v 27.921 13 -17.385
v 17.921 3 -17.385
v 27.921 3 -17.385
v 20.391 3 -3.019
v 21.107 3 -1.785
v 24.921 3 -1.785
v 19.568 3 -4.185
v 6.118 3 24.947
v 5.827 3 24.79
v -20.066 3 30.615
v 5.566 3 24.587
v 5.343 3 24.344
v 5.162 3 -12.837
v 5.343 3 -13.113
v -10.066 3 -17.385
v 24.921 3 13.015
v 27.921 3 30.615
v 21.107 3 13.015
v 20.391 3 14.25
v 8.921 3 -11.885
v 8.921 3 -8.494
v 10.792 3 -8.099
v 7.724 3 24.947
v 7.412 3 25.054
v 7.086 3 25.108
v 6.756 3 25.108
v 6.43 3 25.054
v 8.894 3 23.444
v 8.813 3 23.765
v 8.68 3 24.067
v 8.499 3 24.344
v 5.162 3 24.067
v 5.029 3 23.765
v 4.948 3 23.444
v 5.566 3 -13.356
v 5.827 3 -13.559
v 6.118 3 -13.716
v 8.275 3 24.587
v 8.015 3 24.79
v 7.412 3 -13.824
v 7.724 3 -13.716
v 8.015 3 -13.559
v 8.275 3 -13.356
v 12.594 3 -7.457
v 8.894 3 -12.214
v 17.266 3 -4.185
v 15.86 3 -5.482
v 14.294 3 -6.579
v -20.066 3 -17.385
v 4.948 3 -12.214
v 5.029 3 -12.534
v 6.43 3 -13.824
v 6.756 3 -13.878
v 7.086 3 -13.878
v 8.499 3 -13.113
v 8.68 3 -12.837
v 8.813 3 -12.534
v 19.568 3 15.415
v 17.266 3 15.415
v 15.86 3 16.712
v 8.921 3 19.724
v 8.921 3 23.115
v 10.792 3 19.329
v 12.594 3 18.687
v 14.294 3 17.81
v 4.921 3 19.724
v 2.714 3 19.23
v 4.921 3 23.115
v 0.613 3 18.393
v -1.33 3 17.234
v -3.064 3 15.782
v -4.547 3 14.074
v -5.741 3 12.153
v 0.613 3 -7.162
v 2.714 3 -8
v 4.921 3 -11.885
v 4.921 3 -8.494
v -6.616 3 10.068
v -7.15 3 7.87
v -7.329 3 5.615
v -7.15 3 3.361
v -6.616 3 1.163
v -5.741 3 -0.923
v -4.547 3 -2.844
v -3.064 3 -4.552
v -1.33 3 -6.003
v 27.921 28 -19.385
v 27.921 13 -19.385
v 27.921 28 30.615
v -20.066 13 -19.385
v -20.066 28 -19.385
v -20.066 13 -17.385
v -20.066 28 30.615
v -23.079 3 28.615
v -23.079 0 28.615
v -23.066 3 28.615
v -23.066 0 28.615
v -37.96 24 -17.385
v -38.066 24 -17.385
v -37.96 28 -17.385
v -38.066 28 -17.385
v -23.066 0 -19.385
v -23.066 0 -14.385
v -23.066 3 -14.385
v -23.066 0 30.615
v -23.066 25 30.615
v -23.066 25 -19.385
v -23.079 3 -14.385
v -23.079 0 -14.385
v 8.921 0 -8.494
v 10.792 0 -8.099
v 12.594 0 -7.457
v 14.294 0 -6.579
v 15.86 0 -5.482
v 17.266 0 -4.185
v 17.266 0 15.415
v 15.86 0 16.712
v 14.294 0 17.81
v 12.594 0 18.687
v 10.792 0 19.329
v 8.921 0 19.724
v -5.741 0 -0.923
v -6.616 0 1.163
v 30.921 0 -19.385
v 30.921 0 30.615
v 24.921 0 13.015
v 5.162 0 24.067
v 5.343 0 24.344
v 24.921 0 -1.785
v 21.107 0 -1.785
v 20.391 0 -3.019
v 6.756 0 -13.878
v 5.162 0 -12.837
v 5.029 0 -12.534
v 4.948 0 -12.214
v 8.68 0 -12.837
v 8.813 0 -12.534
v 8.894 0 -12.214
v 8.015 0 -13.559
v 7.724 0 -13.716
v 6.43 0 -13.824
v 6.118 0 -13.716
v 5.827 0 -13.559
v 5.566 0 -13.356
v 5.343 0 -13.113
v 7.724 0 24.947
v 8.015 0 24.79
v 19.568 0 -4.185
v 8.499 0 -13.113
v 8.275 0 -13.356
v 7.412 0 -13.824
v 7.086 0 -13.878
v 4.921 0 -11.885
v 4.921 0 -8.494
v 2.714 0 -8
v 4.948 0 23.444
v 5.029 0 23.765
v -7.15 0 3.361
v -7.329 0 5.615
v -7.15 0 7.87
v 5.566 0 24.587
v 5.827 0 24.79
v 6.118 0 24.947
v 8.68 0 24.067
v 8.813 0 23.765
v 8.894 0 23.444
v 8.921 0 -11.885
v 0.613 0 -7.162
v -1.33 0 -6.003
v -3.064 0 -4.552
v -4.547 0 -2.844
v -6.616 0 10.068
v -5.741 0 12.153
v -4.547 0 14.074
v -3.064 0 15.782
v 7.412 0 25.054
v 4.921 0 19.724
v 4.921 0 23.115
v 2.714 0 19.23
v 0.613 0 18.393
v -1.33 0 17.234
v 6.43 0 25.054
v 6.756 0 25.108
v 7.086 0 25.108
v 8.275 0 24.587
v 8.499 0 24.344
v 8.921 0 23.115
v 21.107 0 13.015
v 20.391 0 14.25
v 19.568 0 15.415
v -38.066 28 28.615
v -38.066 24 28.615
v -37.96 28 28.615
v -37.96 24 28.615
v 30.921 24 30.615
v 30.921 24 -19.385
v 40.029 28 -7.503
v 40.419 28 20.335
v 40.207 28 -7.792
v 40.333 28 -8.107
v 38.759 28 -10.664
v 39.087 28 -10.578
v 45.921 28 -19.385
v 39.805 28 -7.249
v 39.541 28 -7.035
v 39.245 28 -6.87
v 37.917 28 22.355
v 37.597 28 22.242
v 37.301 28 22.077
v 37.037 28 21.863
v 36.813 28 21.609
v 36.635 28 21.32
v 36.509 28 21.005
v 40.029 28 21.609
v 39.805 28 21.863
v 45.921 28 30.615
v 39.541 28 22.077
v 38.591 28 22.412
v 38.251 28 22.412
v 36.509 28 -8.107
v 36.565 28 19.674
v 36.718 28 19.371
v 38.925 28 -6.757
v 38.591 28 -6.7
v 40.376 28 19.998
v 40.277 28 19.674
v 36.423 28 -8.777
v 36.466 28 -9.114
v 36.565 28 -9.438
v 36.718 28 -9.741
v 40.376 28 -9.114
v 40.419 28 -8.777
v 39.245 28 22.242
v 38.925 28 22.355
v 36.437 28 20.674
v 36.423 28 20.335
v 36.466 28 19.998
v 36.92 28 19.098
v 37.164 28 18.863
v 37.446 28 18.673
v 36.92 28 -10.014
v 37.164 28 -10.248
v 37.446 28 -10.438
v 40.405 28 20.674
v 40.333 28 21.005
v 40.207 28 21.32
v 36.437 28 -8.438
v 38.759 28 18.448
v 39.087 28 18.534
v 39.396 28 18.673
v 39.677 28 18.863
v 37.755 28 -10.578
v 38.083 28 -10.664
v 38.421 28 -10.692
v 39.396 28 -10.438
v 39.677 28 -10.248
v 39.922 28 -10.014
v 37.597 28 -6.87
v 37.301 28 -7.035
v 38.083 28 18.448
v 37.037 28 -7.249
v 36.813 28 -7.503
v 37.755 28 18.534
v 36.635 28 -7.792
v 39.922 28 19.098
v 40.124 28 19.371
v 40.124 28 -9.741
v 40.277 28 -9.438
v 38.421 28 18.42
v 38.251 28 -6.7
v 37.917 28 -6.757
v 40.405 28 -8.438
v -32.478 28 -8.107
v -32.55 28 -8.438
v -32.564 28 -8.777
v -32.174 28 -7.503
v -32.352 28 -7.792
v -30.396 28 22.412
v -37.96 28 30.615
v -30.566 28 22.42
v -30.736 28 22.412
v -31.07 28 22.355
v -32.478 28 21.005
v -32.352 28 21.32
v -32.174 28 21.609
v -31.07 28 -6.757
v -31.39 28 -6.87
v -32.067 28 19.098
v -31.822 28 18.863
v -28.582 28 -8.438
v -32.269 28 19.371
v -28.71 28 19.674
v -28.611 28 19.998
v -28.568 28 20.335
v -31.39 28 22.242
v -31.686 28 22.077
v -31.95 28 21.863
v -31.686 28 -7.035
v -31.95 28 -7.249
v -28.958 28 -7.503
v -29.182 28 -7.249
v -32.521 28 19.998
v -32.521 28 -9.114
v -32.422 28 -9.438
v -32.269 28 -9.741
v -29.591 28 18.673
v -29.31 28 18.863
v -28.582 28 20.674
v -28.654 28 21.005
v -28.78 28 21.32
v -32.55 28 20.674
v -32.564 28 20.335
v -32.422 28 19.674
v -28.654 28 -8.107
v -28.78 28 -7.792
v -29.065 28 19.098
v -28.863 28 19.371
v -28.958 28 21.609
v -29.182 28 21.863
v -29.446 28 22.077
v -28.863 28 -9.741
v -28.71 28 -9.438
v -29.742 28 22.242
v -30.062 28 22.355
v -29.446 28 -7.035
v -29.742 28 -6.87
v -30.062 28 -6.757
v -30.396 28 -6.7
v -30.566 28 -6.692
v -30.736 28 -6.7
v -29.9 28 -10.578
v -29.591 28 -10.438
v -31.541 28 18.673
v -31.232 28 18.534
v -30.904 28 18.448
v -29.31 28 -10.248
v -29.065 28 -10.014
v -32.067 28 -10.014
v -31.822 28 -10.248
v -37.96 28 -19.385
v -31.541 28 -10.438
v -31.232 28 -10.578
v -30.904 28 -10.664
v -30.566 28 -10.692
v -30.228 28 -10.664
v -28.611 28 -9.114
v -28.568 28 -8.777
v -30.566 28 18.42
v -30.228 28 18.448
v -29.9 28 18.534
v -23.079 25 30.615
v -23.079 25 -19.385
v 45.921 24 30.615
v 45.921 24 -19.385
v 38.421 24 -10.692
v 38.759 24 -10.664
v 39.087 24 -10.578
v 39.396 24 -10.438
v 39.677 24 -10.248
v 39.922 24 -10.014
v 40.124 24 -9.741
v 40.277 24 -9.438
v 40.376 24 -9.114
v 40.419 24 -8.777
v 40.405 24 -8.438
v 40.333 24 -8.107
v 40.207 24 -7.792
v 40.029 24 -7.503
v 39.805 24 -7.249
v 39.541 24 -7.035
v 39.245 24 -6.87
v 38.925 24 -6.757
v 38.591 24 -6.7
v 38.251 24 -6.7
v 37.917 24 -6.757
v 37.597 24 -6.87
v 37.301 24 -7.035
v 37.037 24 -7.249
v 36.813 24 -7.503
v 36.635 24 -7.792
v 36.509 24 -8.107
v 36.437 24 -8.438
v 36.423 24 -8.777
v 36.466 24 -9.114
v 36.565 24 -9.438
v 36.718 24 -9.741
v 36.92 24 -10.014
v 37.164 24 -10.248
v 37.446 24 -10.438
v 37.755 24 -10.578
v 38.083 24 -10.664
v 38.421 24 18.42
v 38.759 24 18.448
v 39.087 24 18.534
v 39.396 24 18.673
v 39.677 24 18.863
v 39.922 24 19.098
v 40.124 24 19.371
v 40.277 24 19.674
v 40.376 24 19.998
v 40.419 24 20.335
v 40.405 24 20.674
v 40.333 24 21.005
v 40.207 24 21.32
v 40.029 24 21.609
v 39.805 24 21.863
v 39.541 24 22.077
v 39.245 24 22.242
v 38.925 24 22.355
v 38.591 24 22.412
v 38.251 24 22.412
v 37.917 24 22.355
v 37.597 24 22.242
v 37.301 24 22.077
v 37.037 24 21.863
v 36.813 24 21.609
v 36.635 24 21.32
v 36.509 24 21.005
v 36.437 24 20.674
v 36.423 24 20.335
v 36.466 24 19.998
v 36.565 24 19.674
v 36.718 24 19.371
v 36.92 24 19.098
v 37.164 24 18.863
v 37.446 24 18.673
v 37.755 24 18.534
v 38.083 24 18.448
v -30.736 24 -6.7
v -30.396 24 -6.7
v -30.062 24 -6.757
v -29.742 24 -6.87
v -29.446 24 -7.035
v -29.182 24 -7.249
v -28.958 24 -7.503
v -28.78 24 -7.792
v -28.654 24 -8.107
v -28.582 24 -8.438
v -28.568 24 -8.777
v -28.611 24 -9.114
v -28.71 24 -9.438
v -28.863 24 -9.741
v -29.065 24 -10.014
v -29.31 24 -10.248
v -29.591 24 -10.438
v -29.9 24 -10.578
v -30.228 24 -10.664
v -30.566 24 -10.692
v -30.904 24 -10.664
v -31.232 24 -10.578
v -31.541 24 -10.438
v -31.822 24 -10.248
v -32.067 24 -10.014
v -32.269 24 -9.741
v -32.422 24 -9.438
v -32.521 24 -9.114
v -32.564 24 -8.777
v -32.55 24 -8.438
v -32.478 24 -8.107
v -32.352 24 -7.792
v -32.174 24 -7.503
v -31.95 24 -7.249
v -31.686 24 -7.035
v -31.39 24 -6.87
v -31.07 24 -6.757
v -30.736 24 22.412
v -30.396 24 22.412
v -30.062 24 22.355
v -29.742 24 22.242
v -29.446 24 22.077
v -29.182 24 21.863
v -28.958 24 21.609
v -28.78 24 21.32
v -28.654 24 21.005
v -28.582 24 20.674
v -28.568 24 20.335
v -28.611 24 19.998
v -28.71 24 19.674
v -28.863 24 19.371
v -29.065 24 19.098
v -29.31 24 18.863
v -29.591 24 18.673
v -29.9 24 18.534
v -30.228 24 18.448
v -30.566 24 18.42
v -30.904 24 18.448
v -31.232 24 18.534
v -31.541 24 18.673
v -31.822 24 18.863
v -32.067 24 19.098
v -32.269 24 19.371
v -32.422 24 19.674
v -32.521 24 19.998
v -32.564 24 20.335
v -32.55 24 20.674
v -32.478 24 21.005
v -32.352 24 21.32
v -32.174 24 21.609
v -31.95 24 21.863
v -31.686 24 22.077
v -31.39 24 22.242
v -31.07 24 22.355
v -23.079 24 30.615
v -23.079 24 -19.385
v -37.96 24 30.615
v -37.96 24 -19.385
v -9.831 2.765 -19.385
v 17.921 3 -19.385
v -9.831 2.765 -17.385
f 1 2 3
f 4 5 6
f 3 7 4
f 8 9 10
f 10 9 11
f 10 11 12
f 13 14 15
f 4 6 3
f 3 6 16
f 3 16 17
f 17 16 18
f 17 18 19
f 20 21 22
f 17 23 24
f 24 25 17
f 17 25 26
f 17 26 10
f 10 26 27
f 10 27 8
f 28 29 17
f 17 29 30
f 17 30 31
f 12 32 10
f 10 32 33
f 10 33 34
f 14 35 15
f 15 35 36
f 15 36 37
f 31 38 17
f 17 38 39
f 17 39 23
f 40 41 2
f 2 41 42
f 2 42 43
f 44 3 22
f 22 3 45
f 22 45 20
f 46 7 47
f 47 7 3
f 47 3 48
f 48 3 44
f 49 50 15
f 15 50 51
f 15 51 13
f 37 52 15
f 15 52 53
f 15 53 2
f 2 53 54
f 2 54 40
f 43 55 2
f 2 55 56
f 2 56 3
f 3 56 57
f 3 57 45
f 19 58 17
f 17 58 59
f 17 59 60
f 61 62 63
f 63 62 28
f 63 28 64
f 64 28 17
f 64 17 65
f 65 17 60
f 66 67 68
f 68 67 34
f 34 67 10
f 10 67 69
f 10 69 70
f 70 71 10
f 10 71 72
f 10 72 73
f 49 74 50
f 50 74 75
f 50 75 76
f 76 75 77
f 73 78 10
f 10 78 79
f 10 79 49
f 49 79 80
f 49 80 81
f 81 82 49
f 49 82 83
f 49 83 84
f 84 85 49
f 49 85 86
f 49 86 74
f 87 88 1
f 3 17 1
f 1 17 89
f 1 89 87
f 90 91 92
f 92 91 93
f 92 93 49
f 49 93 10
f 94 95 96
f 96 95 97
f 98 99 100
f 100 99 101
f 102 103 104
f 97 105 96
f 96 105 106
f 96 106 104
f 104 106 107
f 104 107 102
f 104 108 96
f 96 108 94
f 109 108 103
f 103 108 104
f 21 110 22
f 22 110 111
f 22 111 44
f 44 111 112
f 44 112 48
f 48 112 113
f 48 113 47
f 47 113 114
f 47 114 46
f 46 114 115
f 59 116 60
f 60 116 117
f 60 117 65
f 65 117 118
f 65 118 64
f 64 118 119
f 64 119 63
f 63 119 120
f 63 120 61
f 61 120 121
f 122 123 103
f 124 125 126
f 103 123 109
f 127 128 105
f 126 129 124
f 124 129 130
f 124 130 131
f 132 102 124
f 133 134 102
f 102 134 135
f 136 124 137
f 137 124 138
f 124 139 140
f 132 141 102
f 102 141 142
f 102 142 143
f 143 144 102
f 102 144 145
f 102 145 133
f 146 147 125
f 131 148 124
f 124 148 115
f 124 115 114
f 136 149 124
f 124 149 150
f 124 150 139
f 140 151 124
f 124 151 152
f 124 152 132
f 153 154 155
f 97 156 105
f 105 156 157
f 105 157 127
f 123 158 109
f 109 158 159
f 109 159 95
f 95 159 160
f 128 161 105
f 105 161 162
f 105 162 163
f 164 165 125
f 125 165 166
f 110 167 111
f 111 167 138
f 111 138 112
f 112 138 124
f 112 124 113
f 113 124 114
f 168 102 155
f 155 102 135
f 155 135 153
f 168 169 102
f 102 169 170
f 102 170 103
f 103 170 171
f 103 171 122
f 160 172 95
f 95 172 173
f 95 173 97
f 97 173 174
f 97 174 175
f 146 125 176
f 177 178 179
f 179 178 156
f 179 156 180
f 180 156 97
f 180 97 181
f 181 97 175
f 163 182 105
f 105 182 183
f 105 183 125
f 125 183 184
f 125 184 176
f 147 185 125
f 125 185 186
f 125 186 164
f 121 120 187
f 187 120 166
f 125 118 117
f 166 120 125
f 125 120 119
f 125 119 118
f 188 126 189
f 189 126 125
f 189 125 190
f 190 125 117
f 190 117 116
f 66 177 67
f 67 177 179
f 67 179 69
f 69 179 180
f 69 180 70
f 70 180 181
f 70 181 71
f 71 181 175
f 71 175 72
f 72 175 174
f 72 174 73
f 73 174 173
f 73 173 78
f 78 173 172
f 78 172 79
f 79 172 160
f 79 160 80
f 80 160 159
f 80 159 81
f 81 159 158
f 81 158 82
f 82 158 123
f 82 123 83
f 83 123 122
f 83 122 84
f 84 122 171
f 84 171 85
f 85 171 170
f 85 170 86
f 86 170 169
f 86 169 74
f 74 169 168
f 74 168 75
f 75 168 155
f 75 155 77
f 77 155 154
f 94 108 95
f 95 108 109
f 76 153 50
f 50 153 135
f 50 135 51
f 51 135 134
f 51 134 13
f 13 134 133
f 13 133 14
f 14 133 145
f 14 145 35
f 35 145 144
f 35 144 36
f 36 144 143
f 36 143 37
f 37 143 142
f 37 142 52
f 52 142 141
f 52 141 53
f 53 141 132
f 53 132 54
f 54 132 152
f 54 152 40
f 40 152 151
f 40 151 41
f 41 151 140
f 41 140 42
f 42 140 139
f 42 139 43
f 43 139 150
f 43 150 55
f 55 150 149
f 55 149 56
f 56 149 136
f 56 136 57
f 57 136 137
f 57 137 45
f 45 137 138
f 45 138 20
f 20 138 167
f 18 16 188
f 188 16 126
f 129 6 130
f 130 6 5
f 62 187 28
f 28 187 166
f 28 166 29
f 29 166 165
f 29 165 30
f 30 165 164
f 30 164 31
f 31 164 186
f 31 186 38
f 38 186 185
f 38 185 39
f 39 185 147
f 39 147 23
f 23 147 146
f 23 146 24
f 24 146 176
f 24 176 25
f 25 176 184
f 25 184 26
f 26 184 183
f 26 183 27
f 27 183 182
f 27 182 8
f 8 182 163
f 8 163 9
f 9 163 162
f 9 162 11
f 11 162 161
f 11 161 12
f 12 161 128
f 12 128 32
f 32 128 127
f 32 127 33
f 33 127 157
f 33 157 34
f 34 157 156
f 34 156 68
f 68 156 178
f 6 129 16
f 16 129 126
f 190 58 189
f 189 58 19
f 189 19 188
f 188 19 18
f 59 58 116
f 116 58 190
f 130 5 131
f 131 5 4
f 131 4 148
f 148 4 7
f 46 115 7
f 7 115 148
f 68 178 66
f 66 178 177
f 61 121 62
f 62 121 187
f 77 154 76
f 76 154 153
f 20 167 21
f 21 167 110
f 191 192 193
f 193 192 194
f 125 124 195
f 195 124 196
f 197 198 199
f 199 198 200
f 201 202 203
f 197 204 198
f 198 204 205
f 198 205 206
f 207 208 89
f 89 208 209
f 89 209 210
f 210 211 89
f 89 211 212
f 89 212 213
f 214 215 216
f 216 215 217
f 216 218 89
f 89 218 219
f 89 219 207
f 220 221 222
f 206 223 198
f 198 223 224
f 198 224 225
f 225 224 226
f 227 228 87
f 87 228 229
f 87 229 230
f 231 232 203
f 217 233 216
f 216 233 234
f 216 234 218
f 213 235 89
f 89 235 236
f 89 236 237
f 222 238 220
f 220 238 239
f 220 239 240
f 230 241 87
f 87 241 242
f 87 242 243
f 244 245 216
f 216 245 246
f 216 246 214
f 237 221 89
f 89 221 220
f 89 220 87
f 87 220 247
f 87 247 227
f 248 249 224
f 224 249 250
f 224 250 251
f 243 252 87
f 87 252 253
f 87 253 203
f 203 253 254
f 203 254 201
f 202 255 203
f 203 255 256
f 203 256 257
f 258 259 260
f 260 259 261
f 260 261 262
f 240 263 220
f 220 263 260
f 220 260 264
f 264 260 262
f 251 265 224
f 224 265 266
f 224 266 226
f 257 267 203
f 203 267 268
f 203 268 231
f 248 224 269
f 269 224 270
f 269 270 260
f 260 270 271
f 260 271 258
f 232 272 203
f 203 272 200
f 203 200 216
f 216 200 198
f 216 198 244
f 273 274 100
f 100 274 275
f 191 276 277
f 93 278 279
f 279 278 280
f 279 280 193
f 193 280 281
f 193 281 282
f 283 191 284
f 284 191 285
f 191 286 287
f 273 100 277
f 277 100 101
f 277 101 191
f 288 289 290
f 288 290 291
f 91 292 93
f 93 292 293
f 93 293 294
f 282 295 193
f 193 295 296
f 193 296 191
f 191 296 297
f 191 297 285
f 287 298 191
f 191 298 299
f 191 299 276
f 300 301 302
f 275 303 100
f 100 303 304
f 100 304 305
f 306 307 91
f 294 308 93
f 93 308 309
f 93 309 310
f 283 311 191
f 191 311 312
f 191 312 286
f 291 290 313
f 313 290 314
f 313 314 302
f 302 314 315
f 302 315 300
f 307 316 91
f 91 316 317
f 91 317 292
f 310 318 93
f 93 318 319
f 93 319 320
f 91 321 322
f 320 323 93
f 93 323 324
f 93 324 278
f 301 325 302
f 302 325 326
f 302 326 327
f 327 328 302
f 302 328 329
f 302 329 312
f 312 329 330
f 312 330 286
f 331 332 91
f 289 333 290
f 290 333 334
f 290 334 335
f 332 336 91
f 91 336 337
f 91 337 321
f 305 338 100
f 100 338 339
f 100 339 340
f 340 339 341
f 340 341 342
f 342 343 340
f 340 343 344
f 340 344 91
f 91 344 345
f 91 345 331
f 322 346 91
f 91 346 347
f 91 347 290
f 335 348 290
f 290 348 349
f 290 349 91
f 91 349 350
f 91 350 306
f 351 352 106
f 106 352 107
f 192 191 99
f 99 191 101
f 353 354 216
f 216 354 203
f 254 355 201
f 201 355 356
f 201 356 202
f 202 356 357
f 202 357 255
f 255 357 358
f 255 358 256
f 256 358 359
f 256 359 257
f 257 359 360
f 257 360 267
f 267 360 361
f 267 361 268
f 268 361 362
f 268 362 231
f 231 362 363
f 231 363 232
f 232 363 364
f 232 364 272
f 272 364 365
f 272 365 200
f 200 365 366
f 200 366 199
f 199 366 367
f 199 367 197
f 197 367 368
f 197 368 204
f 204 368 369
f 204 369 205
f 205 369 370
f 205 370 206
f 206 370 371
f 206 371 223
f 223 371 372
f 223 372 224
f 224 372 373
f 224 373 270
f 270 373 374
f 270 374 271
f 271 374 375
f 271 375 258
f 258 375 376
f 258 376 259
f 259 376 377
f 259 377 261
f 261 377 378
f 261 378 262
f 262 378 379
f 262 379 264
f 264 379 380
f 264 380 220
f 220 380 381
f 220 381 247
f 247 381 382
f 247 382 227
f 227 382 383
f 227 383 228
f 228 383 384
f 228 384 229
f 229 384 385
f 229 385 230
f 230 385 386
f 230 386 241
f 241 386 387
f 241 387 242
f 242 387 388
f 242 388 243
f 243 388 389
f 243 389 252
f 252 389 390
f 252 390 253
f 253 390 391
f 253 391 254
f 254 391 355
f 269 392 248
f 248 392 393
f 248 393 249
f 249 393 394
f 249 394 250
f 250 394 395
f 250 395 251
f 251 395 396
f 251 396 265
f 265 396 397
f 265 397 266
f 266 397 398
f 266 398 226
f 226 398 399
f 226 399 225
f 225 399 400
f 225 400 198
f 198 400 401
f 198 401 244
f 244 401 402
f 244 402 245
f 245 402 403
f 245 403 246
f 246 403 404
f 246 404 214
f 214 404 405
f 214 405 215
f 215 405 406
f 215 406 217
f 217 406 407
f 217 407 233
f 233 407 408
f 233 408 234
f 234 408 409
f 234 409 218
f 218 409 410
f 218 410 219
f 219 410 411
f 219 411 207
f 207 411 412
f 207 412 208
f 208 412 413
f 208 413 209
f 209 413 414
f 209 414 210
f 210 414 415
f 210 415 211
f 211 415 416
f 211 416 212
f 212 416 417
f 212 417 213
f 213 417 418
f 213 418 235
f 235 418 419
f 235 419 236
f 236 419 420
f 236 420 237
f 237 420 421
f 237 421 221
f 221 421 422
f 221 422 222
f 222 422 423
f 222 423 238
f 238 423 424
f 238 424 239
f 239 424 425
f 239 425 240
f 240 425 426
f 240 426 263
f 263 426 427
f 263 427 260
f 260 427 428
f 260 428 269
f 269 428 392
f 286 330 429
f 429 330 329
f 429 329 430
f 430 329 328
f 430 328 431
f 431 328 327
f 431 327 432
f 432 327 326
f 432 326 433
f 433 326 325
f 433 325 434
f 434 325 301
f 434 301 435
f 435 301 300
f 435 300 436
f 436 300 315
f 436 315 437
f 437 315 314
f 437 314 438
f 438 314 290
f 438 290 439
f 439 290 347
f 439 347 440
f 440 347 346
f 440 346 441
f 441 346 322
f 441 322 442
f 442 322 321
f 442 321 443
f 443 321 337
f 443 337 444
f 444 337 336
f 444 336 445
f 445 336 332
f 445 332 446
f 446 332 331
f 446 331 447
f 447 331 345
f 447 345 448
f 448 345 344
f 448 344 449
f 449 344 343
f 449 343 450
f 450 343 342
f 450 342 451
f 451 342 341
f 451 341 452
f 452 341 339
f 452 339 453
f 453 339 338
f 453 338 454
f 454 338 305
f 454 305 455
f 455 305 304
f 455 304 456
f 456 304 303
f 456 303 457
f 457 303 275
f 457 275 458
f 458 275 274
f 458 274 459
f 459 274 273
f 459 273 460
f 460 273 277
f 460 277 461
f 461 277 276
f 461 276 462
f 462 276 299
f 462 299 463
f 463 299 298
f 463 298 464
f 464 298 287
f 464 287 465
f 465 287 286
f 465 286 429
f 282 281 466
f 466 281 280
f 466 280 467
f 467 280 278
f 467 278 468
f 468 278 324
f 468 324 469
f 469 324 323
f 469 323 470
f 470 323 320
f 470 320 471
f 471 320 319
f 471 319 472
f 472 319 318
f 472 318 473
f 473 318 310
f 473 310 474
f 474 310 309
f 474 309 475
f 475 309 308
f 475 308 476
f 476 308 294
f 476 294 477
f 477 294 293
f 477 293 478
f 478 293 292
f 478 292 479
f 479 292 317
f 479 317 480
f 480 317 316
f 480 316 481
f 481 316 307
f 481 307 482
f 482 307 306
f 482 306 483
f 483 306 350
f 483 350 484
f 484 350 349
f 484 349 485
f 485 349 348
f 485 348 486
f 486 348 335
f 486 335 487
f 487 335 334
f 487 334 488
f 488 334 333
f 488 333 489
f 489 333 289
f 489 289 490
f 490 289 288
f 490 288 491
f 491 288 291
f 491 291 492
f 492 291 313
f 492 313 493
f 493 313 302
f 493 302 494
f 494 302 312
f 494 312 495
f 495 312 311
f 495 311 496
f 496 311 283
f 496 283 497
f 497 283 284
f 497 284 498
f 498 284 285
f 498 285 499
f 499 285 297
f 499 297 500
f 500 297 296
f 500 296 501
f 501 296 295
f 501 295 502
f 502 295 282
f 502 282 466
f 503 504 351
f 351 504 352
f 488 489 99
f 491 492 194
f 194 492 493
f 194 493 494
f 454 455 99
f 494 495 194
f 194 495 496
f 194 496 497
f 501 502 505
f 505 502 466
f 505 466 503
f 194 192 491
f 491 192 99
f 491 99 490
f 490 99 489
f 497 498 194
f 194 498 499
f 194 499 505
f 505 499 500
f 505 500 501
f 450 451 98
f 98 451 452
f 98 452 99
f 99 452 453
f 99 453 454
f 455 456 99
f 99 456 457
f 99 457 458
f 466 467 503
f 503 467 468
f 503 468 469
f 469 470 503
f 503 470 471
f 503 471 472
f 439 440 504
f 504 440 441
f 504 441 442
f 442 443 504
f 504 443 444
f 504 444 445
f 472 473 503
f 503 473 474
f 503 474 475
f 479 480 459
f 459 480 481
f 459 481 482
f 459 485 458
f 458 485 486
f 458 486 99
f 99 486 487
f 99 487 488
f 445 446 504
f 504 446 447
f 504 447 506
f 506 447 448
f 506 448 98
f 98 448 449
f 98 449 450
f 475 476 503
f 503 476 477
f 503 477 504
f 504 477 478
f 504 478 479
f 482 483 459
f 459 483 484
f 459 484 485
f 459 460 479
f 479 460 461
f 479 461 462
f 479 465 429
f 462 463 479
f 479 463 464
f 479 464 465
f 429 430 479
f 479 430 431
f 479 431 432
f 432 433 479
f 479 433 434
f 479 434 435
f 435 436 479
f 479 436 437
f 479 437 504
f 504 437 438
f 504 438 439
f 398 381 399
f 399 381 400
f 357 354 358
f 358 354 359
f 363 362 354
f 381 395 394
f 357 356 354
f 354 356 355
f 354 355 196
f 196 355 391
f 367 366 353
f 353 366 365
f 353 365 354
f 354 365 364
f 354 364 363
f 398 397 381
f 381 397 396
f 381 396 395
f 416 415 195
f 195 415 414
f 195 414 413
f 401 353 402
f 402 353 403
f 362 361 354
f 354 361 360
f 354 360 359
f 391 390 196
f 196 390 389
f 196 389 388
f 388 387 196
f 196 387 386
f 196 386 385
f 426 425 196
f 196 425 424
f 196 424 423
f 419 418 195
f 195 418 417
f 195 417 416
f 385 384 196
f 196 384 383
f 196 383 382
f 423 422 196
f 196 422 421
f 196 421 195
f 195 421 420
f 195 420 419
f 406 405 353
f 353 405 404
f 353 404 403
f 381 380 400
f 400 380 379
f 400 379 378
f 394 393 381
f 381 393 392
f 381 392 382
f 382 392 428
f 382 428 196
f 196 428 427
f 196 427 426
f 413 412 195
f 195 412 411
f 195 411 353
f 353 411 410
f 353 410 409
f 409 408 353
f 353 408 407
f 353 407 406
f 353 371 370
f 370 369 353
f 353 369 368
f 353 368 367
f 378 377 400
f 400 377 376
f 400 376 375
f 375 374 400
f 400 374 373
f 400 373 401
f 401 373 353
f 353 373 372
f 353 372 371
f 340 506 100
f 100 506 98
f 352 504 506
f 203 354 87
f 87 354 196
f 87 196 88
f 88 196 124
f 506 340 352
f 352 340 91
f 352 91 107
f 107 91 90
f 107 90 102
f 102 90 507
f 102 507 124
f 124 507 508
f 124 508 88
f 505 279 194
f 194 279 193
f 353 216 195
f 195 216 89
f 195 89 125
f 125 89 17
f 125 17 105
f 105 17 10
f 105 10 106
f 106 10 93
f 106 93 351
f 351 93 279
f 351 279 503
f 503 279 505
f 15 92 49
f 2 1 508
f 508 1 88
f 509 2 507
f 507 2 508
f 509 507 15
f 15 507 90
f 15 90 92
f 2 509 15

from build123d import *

# Parameters (mm, degrees)
SKETCH1_W            = 50
SKETCH1_H            = 40
BOSS_EXTRUDE1_DEPTH  = 3
SKETCH6_R            = 2
CUT_EXTRUDE9_DEPTH   = 5
SKETCH16_W           = 14.8
SKETCH16_H           = 3
CUT_EXTRUDE10_DEPTH  = 0.5
SKETCH21_R           = 14.25
CUT_EXTRUDE15_DEPTH  = 4
CUT_EXTRUDE16_START  = -4
CUT_EXTRUDE16_DEPTH  = 4
SKETCH33_W           = 4
SKETCH33_H           = 35
CUT_EXTRUDE23_DEPTH  = 5
SKETCH34_W           = 49.986920535
SKETCH34_H           = 3
BOSS_EXTRUDE2_DEPTH  = 3
SKETCH35_W           = 50
SKETCH35_H           = 3
BOSS_EXTRUDE3_DEPTH  = 3
SKETCH36_W           = 46
SKETCH36_H           = 3
BOSS_EXTRUDE4_DEPTH  = 4
SKETCH38_W           = 3
SKETCH38_H           = 46
BOSS_EXTRUDE5_DEPTH  = 25
SKETCH39_W           = 45.535565308
SKETCH39_H           = 3
BOSS_EXTRUDE6_DEPTH  = 15
SKETCH40_W           = 46
SKETCH40_H           = 3
BOSS_EXTRUDE7_DEPTH  = 15
SKETCH41_W           = 0.464434692
SKETCH41_H           = 3
BOSS_EXTRUDE8_DEPTH  = 15
SKETCH42_R           = 2
CUT_EXTRUDE24_DEPTH  = 15
SKETCH43_R           = 2
CUT_EXTRUDE25_DEPTH  = 15
BOSS_EXTRUDE10_START = 1
SKETCH44_W           = 14.986920535
SKETCH44_H           = 46
SKETCH44_R           = 2
BOSS_EXTRUDE10_DEPTH = 1
BOSS_EXTRUDE11_START = 1
SKETCH46_W           = 15
SKETCH46_H           = 46
SKETCH46_R           = 2
BOSS_EXTRUDE11_DEPTH = 1
BOSS_EXTRUDE12_DEPTH = 2
BOSS_EXTRUDE13_DEPTH = 2
SKETCH49_W           = 47.986920535
SKETCH49_H           = 2
BOSS_EXTRUDE14_DEPTH = 10
CUT_EXTRUDE26_DEPTH  = 10


with BuildPart() as part:
    # Sketch1 → Boss-Extrude1 (new body)
    with BuildSketch(Plane(origin=(0, 0, 0), x_dir=(1, 0, 0), z_dir=(0, 1, 0))):
        with Locations((1.920937393, -5.615172506)):
            Rectangle(SKETCH1_W, SKETCH1_H)
    extrude(amount=BOSS_EXTRUDE1_DEPTH)

    # Sketch6 → Cut-Extrude9 (cut)
    with BuildSketch(Plane.XZ):
        with Locations(Location((6.920937393, 23.115172506, 0), (0, 0, 270))):
            Circle(SKETCH6_R)
        with Locations(Location((6.920937393, -11.884827494, 0), (0, 0, 270))):
            Circle(SKETCH6_R)
        with BuildLine():
            Line((24.420937393, 13.015172506), (18.923020545, 13.015172506))
            ThreePointArc((18.923020545, 13.015172506), (-7.179062607, 5.615172506), (18.923020545, -1.784827494))
            Line((18.923020545, -1.784827494), (24.420937393, -1.784827494))
            Line((24.420937393, -1.784827494), (24.420937393, 5.615172506))
            Line((24.420937393, 5.615172506), (24.420937393, 13.015172506))
        make_face()
    extrude(amount=-CUT_EXTRUDE9_DEPTH, mode=Mode.SUBTRACT)

    # Sketch16 → Cut-Extrude10 (cut)
    with BuildSketch(Plane.ZY.offset(-24.420937393)):
        with Locations((5.615172506, 1.5)):
            Rectangle(SKETCH16_W, SKETCH16_H)
    extrude(amount=-CUT_EXTRUDE10_DEPTH, mode=Mode.SUBTRACT)

    # Sketch21 → Cut-Extrude15 (cut)
    with BuildSketch(Plane(origin=(0, 0, 0), x_dir=(-1, 0, 0), z_dir=(0, -1, 0))):
        with Locations((-6.920937393, -5.615172506)):
            Circle(SKETCH21_R)
    extrude(amount=-CUT_EXTRUDE15_DEPTH, mode=Mode.SUBTRACT)

    # Sketch22 → Cut-Extrude16 (cut)
    with BuildSketch(Plane(origin=(0, 3, 0), x_dir=(1, 0, 0), z_dir=(0, 1, 0)).offset(CUT_EXTRUDE16_START)):
        with BuildLine():
            ThreePointArc((21.106680727, 1.784827494), (20.39103932, 3.019158274), (19.568281538, 4.184827494))
            Line((19.568281538, 4.184827494), (17.266105347, 4.184827494))
            ThreePointArc((17.266105347, 4.184827494), (18.246250908, 3.03351374), (19.09888878, 1.784827494))
            Line((19.09888878, 1.784827494), (21.106680727, 1.784827494))
        make_face()
        with BuildLine():
            Line((17.266105347, -15.415172506), (19.568281538, -15.415172506))
            ThreePointArc((19.568281538, -15.415172506), (20.39103932, -14.249503286), (21.106680727, -13.015172506))
            Line((21.106680727, -13.015172506), (19.09888878, -13.015172506))
            ThreePointArc((19.09888878, -13.015172506), (18.246250908, -14.263858752), (17.266105347, -15.415172506))
        make_face()
    extrude(amount=CUT_EXTRUDE16_DEPTH, mode=Mode.SUBTRACT)

    # Sketch33 → Cut-Extrude23 (cut)
    with BuildSketch(Plane(origin=(0, 3, 0), x_dir=(1, 0, 0), z_dir=(0, 1, 0))):
        with Locations((6.920937393, -5.615172506)):
            Rectangle(SKETCH33_W, SKETCH33_H)
    extrude(amount=-CUT_EXTRUDE23_DEPTH, mode=Mode.SUBTRACT)

    # Sketch34 → Boss-Extrude2 (add)
    with BuildSketch(Plane(origin=(0, 0, -14.384827494), x_dir=(-1, 0, 0), z_dir=(0, 0, -1))):
        with Locations((-1.927477126, 1.5)):
            Rectangle(SKETCH34_W, SKETCH34_H)
    extrude(amount=BOSS_EXTRUDE2_DEPTH)

    # Sketch35 → Boss-Extrude3 (add)
    with BuildSketch(Plane.XY.offset(25.615172506)):
        with Locations((1.920937393, 1.5)):
            Rectangle(SKETCH35_W, SKETCH35_H)
    extrude(amount=BOSS_EXTRUDE3_DEPTH)

    # Sketch36 → Boss-Extrude4 (add)
    with BuildSketch(Plane(origin=(26.920937393, 0, 0), x_dir=(0, 0, -1), z_dir=(1, 0, 0))):
        with Locations((-5.615172506, 1.5)):
            Rectangle(SKETCH36_W, SKETCH36_H)
    extrude(amount=BOSS_EXTRUDE4_DEPTH)

    # Sketch38 → Boss-Extrude5 (add)
    with BuildSketch(Plane(origin=(0, 3, 0), x_dir=(1, 0, 0), z_dir=(0, 1, 0))):
        with Locations((29.420937393, -5.615172506)):
            Rectangle(SKETCH38_W, SKETCH38_H)
        with Locations((-21.565983142, -5.615172506)):
            Rectangle(SKETCH38_W, SKETCH38_H)
    extrude(amount=BOSS_EXTRUDE5_DEPTH)

    # Sketch39 → Boss-Extrude6 (add)
    with BuildSketch(Plane.ZY.offset(23.065983142)):
        with Locations((5.38295516, 26.5)):
            Rectangle(SKETCH39_W, SKETCH39_H)
    extrude(amount=BOSS_EXTRUDE6_DEPTH)

    # Sketch40 → Boss-Extrude7 (add)
    with BuildSketch(Plane(origin=(30.920937393, 0, 0), x_dir=(0, 0, -1), z_dir=(1, 0, 0))):
        with Locations((-5.615172506, 26.5)):
            Rectangle(SKETCH40_W, SKETCH40_H)
    extrude(amount=BOSS_EXTRUDE7_DEPTH)

    # Sketch41 → Boss-Extrude8 (add)
    with BuildSketch(Plane.ZY.offset(23.065983142)):
        with Locations((28.38295516, 26.5)):
            Rectangle(SKETCH41_W, SKETCH41_H)
    extrude(amount=BOSS_EXTRUDE8_DEPTH)

    # Sketch42 → Cut-Extrude24 (cut)
    with BuildSketch(Plane.XZ.offset(-25)):
        with Locations(Location((38.420937393, 20.419520332, 0), (0, 0, 270))):
            Circle(SKETCH42_R)
        with Locations(Location((38.420937393, -8.692413747, 0), (0, 0, 270))):
            Circle(SKETCH42_R)
    extrude(amount=-CUT_EXTRUDE24_DEPTH, mode=Mode.SUBTRACT)

    # Sketch43 → Cut-Extrude25 (cut)
    with BuildSketch(Plane.XZ.offset(-25)):
        with Locations(Location((-30.565983142, 20.419520332, 0), (0, 0, 270))):
            Circle(SKETCH43_R)
        with Locations(Location((-30.565983142, -8.692413747, 0), (0, 0, 270))):
            Circle(SKETCH43_R)
    extrude(amount=-CUT_EXTRUDE25_DEPTH, mode=Mode.SUBTRACT)

    # Sketch44 → Boss-Extrude10 (add)
    with BuildSketch(Plane.XZ.offset(-25).offset(BOSS_EXTRUDE10_START)):
        with Locations((-30.572522875, 5.615172506)):
            Rectangle(SKETCH44_W, SKETCH44_H)
        with Locations(Location((-30.565983142, -8.692413747, 0), (0, 0, 270))):
            Circle(SKETCH44_R, mode=Mode.SUBTRACT)
        with Locations(Location((-30.565983142, 20.419520332, 0), (0, 0, 270))):
            Circle(SKETCH44_R, mode=Mode.SUBTRACT)
    extrude(amount=-BOSS_EXTRUDE10_DEPTH)

    # Sketch46 → Boss-Extrude11 (add)
    with BuildSketch(Plane.XZ.offset(-25).offset(BOSS_EXTRUDE11_START)):
        with Locations((38.420937393, 5.615172506)):
            Rectangle(SKETCH46_W, SKETCH46_H)
        with Locations(Location((38.420937393, -8.692413747, 0), (0, 0, 270))):
            Circle(SKETCH46_R, mode=Mode.SUBTRACT)
        with Locations(Location((38.420937393, 20.419520332, 0), (0, 0, 270))):
            Circle(SKETCH46_R, mode=Mode.SUBTRACT)
    extrude(amount=-BOSS_EXTRUDE11_DEPTH)

    # Sketch47 → Boss-Extrude12 (add)
    with BuildSketch(Plane(origin=(0, 0, -17.384827494), x_dir=(-1, 0, 0), z_dir=(0, 0, -1))):
        Polygon((-27.920937393, 28), (-45.920937393, 28), (-45.920937393, 24), (-30.920937393, 24), (-30.920937393, 0), (23.065983142, 0), (23.065983142, 3), (23.065983142, 25), (23.079062607, 25), (23.079062607, 24), (37.960253495, 24), (37.960253495, 28), (20.065983142, 28), (20.065983142, 3), (-27.920937393, 3), align=None)
    extrude(amount=BOSS_EXTRUDE12_DEPTH)

    # Sketch48 → Boss-Extrude13 (add)
    with BuildSketch(Plane.XY.offset(28.615172506)):
        Polygon((-20.065983142, 28), (-37.960253495, 28), (-37.960253495, 24), (-23.079062607, 24), (-23.079062607, 25), (-23.065983142, 25), (-23.065983142, 3), (-23.065983142, 0), (30.920937393, 0), (30.920937393, 24), (45.920937393, 24), (45.920937393, 28), (27.920937393, 28), (27.920937393, 3), (-20.065983142, 3), align=None)
    extrude(amount=BOSS_EXTRUDE13_DEPTH)

    # Sketch49 → Boss-Extrude14 (add)
    with BuildSketch(Plane(origin=(0, 3, 0), x_dir=(1, 0, 0), z_dir=(0, 1, 0))):
        with Locations((3.927477126, 18.384827494)):
            Rectangle(SKETCH49_W, SKETCH49_H)
    extrude(amount=BOSS_EXTRUDE14_DEPTH)

    # Sketch50 → Cut-Extrude26 (cut)
    with BuildSketch(Plane.XY.offset(-17.384827494)):
        Polygon((-20.065983142, 13), (-9.830586805, 2.764603663), (17.920937393, 3), (27.920937393, 13), align=None)
    extrude(amount=-CUT_EXTRUDE26_DEPTH, mode=Mode.SUBTRACT)


solid = part.part
